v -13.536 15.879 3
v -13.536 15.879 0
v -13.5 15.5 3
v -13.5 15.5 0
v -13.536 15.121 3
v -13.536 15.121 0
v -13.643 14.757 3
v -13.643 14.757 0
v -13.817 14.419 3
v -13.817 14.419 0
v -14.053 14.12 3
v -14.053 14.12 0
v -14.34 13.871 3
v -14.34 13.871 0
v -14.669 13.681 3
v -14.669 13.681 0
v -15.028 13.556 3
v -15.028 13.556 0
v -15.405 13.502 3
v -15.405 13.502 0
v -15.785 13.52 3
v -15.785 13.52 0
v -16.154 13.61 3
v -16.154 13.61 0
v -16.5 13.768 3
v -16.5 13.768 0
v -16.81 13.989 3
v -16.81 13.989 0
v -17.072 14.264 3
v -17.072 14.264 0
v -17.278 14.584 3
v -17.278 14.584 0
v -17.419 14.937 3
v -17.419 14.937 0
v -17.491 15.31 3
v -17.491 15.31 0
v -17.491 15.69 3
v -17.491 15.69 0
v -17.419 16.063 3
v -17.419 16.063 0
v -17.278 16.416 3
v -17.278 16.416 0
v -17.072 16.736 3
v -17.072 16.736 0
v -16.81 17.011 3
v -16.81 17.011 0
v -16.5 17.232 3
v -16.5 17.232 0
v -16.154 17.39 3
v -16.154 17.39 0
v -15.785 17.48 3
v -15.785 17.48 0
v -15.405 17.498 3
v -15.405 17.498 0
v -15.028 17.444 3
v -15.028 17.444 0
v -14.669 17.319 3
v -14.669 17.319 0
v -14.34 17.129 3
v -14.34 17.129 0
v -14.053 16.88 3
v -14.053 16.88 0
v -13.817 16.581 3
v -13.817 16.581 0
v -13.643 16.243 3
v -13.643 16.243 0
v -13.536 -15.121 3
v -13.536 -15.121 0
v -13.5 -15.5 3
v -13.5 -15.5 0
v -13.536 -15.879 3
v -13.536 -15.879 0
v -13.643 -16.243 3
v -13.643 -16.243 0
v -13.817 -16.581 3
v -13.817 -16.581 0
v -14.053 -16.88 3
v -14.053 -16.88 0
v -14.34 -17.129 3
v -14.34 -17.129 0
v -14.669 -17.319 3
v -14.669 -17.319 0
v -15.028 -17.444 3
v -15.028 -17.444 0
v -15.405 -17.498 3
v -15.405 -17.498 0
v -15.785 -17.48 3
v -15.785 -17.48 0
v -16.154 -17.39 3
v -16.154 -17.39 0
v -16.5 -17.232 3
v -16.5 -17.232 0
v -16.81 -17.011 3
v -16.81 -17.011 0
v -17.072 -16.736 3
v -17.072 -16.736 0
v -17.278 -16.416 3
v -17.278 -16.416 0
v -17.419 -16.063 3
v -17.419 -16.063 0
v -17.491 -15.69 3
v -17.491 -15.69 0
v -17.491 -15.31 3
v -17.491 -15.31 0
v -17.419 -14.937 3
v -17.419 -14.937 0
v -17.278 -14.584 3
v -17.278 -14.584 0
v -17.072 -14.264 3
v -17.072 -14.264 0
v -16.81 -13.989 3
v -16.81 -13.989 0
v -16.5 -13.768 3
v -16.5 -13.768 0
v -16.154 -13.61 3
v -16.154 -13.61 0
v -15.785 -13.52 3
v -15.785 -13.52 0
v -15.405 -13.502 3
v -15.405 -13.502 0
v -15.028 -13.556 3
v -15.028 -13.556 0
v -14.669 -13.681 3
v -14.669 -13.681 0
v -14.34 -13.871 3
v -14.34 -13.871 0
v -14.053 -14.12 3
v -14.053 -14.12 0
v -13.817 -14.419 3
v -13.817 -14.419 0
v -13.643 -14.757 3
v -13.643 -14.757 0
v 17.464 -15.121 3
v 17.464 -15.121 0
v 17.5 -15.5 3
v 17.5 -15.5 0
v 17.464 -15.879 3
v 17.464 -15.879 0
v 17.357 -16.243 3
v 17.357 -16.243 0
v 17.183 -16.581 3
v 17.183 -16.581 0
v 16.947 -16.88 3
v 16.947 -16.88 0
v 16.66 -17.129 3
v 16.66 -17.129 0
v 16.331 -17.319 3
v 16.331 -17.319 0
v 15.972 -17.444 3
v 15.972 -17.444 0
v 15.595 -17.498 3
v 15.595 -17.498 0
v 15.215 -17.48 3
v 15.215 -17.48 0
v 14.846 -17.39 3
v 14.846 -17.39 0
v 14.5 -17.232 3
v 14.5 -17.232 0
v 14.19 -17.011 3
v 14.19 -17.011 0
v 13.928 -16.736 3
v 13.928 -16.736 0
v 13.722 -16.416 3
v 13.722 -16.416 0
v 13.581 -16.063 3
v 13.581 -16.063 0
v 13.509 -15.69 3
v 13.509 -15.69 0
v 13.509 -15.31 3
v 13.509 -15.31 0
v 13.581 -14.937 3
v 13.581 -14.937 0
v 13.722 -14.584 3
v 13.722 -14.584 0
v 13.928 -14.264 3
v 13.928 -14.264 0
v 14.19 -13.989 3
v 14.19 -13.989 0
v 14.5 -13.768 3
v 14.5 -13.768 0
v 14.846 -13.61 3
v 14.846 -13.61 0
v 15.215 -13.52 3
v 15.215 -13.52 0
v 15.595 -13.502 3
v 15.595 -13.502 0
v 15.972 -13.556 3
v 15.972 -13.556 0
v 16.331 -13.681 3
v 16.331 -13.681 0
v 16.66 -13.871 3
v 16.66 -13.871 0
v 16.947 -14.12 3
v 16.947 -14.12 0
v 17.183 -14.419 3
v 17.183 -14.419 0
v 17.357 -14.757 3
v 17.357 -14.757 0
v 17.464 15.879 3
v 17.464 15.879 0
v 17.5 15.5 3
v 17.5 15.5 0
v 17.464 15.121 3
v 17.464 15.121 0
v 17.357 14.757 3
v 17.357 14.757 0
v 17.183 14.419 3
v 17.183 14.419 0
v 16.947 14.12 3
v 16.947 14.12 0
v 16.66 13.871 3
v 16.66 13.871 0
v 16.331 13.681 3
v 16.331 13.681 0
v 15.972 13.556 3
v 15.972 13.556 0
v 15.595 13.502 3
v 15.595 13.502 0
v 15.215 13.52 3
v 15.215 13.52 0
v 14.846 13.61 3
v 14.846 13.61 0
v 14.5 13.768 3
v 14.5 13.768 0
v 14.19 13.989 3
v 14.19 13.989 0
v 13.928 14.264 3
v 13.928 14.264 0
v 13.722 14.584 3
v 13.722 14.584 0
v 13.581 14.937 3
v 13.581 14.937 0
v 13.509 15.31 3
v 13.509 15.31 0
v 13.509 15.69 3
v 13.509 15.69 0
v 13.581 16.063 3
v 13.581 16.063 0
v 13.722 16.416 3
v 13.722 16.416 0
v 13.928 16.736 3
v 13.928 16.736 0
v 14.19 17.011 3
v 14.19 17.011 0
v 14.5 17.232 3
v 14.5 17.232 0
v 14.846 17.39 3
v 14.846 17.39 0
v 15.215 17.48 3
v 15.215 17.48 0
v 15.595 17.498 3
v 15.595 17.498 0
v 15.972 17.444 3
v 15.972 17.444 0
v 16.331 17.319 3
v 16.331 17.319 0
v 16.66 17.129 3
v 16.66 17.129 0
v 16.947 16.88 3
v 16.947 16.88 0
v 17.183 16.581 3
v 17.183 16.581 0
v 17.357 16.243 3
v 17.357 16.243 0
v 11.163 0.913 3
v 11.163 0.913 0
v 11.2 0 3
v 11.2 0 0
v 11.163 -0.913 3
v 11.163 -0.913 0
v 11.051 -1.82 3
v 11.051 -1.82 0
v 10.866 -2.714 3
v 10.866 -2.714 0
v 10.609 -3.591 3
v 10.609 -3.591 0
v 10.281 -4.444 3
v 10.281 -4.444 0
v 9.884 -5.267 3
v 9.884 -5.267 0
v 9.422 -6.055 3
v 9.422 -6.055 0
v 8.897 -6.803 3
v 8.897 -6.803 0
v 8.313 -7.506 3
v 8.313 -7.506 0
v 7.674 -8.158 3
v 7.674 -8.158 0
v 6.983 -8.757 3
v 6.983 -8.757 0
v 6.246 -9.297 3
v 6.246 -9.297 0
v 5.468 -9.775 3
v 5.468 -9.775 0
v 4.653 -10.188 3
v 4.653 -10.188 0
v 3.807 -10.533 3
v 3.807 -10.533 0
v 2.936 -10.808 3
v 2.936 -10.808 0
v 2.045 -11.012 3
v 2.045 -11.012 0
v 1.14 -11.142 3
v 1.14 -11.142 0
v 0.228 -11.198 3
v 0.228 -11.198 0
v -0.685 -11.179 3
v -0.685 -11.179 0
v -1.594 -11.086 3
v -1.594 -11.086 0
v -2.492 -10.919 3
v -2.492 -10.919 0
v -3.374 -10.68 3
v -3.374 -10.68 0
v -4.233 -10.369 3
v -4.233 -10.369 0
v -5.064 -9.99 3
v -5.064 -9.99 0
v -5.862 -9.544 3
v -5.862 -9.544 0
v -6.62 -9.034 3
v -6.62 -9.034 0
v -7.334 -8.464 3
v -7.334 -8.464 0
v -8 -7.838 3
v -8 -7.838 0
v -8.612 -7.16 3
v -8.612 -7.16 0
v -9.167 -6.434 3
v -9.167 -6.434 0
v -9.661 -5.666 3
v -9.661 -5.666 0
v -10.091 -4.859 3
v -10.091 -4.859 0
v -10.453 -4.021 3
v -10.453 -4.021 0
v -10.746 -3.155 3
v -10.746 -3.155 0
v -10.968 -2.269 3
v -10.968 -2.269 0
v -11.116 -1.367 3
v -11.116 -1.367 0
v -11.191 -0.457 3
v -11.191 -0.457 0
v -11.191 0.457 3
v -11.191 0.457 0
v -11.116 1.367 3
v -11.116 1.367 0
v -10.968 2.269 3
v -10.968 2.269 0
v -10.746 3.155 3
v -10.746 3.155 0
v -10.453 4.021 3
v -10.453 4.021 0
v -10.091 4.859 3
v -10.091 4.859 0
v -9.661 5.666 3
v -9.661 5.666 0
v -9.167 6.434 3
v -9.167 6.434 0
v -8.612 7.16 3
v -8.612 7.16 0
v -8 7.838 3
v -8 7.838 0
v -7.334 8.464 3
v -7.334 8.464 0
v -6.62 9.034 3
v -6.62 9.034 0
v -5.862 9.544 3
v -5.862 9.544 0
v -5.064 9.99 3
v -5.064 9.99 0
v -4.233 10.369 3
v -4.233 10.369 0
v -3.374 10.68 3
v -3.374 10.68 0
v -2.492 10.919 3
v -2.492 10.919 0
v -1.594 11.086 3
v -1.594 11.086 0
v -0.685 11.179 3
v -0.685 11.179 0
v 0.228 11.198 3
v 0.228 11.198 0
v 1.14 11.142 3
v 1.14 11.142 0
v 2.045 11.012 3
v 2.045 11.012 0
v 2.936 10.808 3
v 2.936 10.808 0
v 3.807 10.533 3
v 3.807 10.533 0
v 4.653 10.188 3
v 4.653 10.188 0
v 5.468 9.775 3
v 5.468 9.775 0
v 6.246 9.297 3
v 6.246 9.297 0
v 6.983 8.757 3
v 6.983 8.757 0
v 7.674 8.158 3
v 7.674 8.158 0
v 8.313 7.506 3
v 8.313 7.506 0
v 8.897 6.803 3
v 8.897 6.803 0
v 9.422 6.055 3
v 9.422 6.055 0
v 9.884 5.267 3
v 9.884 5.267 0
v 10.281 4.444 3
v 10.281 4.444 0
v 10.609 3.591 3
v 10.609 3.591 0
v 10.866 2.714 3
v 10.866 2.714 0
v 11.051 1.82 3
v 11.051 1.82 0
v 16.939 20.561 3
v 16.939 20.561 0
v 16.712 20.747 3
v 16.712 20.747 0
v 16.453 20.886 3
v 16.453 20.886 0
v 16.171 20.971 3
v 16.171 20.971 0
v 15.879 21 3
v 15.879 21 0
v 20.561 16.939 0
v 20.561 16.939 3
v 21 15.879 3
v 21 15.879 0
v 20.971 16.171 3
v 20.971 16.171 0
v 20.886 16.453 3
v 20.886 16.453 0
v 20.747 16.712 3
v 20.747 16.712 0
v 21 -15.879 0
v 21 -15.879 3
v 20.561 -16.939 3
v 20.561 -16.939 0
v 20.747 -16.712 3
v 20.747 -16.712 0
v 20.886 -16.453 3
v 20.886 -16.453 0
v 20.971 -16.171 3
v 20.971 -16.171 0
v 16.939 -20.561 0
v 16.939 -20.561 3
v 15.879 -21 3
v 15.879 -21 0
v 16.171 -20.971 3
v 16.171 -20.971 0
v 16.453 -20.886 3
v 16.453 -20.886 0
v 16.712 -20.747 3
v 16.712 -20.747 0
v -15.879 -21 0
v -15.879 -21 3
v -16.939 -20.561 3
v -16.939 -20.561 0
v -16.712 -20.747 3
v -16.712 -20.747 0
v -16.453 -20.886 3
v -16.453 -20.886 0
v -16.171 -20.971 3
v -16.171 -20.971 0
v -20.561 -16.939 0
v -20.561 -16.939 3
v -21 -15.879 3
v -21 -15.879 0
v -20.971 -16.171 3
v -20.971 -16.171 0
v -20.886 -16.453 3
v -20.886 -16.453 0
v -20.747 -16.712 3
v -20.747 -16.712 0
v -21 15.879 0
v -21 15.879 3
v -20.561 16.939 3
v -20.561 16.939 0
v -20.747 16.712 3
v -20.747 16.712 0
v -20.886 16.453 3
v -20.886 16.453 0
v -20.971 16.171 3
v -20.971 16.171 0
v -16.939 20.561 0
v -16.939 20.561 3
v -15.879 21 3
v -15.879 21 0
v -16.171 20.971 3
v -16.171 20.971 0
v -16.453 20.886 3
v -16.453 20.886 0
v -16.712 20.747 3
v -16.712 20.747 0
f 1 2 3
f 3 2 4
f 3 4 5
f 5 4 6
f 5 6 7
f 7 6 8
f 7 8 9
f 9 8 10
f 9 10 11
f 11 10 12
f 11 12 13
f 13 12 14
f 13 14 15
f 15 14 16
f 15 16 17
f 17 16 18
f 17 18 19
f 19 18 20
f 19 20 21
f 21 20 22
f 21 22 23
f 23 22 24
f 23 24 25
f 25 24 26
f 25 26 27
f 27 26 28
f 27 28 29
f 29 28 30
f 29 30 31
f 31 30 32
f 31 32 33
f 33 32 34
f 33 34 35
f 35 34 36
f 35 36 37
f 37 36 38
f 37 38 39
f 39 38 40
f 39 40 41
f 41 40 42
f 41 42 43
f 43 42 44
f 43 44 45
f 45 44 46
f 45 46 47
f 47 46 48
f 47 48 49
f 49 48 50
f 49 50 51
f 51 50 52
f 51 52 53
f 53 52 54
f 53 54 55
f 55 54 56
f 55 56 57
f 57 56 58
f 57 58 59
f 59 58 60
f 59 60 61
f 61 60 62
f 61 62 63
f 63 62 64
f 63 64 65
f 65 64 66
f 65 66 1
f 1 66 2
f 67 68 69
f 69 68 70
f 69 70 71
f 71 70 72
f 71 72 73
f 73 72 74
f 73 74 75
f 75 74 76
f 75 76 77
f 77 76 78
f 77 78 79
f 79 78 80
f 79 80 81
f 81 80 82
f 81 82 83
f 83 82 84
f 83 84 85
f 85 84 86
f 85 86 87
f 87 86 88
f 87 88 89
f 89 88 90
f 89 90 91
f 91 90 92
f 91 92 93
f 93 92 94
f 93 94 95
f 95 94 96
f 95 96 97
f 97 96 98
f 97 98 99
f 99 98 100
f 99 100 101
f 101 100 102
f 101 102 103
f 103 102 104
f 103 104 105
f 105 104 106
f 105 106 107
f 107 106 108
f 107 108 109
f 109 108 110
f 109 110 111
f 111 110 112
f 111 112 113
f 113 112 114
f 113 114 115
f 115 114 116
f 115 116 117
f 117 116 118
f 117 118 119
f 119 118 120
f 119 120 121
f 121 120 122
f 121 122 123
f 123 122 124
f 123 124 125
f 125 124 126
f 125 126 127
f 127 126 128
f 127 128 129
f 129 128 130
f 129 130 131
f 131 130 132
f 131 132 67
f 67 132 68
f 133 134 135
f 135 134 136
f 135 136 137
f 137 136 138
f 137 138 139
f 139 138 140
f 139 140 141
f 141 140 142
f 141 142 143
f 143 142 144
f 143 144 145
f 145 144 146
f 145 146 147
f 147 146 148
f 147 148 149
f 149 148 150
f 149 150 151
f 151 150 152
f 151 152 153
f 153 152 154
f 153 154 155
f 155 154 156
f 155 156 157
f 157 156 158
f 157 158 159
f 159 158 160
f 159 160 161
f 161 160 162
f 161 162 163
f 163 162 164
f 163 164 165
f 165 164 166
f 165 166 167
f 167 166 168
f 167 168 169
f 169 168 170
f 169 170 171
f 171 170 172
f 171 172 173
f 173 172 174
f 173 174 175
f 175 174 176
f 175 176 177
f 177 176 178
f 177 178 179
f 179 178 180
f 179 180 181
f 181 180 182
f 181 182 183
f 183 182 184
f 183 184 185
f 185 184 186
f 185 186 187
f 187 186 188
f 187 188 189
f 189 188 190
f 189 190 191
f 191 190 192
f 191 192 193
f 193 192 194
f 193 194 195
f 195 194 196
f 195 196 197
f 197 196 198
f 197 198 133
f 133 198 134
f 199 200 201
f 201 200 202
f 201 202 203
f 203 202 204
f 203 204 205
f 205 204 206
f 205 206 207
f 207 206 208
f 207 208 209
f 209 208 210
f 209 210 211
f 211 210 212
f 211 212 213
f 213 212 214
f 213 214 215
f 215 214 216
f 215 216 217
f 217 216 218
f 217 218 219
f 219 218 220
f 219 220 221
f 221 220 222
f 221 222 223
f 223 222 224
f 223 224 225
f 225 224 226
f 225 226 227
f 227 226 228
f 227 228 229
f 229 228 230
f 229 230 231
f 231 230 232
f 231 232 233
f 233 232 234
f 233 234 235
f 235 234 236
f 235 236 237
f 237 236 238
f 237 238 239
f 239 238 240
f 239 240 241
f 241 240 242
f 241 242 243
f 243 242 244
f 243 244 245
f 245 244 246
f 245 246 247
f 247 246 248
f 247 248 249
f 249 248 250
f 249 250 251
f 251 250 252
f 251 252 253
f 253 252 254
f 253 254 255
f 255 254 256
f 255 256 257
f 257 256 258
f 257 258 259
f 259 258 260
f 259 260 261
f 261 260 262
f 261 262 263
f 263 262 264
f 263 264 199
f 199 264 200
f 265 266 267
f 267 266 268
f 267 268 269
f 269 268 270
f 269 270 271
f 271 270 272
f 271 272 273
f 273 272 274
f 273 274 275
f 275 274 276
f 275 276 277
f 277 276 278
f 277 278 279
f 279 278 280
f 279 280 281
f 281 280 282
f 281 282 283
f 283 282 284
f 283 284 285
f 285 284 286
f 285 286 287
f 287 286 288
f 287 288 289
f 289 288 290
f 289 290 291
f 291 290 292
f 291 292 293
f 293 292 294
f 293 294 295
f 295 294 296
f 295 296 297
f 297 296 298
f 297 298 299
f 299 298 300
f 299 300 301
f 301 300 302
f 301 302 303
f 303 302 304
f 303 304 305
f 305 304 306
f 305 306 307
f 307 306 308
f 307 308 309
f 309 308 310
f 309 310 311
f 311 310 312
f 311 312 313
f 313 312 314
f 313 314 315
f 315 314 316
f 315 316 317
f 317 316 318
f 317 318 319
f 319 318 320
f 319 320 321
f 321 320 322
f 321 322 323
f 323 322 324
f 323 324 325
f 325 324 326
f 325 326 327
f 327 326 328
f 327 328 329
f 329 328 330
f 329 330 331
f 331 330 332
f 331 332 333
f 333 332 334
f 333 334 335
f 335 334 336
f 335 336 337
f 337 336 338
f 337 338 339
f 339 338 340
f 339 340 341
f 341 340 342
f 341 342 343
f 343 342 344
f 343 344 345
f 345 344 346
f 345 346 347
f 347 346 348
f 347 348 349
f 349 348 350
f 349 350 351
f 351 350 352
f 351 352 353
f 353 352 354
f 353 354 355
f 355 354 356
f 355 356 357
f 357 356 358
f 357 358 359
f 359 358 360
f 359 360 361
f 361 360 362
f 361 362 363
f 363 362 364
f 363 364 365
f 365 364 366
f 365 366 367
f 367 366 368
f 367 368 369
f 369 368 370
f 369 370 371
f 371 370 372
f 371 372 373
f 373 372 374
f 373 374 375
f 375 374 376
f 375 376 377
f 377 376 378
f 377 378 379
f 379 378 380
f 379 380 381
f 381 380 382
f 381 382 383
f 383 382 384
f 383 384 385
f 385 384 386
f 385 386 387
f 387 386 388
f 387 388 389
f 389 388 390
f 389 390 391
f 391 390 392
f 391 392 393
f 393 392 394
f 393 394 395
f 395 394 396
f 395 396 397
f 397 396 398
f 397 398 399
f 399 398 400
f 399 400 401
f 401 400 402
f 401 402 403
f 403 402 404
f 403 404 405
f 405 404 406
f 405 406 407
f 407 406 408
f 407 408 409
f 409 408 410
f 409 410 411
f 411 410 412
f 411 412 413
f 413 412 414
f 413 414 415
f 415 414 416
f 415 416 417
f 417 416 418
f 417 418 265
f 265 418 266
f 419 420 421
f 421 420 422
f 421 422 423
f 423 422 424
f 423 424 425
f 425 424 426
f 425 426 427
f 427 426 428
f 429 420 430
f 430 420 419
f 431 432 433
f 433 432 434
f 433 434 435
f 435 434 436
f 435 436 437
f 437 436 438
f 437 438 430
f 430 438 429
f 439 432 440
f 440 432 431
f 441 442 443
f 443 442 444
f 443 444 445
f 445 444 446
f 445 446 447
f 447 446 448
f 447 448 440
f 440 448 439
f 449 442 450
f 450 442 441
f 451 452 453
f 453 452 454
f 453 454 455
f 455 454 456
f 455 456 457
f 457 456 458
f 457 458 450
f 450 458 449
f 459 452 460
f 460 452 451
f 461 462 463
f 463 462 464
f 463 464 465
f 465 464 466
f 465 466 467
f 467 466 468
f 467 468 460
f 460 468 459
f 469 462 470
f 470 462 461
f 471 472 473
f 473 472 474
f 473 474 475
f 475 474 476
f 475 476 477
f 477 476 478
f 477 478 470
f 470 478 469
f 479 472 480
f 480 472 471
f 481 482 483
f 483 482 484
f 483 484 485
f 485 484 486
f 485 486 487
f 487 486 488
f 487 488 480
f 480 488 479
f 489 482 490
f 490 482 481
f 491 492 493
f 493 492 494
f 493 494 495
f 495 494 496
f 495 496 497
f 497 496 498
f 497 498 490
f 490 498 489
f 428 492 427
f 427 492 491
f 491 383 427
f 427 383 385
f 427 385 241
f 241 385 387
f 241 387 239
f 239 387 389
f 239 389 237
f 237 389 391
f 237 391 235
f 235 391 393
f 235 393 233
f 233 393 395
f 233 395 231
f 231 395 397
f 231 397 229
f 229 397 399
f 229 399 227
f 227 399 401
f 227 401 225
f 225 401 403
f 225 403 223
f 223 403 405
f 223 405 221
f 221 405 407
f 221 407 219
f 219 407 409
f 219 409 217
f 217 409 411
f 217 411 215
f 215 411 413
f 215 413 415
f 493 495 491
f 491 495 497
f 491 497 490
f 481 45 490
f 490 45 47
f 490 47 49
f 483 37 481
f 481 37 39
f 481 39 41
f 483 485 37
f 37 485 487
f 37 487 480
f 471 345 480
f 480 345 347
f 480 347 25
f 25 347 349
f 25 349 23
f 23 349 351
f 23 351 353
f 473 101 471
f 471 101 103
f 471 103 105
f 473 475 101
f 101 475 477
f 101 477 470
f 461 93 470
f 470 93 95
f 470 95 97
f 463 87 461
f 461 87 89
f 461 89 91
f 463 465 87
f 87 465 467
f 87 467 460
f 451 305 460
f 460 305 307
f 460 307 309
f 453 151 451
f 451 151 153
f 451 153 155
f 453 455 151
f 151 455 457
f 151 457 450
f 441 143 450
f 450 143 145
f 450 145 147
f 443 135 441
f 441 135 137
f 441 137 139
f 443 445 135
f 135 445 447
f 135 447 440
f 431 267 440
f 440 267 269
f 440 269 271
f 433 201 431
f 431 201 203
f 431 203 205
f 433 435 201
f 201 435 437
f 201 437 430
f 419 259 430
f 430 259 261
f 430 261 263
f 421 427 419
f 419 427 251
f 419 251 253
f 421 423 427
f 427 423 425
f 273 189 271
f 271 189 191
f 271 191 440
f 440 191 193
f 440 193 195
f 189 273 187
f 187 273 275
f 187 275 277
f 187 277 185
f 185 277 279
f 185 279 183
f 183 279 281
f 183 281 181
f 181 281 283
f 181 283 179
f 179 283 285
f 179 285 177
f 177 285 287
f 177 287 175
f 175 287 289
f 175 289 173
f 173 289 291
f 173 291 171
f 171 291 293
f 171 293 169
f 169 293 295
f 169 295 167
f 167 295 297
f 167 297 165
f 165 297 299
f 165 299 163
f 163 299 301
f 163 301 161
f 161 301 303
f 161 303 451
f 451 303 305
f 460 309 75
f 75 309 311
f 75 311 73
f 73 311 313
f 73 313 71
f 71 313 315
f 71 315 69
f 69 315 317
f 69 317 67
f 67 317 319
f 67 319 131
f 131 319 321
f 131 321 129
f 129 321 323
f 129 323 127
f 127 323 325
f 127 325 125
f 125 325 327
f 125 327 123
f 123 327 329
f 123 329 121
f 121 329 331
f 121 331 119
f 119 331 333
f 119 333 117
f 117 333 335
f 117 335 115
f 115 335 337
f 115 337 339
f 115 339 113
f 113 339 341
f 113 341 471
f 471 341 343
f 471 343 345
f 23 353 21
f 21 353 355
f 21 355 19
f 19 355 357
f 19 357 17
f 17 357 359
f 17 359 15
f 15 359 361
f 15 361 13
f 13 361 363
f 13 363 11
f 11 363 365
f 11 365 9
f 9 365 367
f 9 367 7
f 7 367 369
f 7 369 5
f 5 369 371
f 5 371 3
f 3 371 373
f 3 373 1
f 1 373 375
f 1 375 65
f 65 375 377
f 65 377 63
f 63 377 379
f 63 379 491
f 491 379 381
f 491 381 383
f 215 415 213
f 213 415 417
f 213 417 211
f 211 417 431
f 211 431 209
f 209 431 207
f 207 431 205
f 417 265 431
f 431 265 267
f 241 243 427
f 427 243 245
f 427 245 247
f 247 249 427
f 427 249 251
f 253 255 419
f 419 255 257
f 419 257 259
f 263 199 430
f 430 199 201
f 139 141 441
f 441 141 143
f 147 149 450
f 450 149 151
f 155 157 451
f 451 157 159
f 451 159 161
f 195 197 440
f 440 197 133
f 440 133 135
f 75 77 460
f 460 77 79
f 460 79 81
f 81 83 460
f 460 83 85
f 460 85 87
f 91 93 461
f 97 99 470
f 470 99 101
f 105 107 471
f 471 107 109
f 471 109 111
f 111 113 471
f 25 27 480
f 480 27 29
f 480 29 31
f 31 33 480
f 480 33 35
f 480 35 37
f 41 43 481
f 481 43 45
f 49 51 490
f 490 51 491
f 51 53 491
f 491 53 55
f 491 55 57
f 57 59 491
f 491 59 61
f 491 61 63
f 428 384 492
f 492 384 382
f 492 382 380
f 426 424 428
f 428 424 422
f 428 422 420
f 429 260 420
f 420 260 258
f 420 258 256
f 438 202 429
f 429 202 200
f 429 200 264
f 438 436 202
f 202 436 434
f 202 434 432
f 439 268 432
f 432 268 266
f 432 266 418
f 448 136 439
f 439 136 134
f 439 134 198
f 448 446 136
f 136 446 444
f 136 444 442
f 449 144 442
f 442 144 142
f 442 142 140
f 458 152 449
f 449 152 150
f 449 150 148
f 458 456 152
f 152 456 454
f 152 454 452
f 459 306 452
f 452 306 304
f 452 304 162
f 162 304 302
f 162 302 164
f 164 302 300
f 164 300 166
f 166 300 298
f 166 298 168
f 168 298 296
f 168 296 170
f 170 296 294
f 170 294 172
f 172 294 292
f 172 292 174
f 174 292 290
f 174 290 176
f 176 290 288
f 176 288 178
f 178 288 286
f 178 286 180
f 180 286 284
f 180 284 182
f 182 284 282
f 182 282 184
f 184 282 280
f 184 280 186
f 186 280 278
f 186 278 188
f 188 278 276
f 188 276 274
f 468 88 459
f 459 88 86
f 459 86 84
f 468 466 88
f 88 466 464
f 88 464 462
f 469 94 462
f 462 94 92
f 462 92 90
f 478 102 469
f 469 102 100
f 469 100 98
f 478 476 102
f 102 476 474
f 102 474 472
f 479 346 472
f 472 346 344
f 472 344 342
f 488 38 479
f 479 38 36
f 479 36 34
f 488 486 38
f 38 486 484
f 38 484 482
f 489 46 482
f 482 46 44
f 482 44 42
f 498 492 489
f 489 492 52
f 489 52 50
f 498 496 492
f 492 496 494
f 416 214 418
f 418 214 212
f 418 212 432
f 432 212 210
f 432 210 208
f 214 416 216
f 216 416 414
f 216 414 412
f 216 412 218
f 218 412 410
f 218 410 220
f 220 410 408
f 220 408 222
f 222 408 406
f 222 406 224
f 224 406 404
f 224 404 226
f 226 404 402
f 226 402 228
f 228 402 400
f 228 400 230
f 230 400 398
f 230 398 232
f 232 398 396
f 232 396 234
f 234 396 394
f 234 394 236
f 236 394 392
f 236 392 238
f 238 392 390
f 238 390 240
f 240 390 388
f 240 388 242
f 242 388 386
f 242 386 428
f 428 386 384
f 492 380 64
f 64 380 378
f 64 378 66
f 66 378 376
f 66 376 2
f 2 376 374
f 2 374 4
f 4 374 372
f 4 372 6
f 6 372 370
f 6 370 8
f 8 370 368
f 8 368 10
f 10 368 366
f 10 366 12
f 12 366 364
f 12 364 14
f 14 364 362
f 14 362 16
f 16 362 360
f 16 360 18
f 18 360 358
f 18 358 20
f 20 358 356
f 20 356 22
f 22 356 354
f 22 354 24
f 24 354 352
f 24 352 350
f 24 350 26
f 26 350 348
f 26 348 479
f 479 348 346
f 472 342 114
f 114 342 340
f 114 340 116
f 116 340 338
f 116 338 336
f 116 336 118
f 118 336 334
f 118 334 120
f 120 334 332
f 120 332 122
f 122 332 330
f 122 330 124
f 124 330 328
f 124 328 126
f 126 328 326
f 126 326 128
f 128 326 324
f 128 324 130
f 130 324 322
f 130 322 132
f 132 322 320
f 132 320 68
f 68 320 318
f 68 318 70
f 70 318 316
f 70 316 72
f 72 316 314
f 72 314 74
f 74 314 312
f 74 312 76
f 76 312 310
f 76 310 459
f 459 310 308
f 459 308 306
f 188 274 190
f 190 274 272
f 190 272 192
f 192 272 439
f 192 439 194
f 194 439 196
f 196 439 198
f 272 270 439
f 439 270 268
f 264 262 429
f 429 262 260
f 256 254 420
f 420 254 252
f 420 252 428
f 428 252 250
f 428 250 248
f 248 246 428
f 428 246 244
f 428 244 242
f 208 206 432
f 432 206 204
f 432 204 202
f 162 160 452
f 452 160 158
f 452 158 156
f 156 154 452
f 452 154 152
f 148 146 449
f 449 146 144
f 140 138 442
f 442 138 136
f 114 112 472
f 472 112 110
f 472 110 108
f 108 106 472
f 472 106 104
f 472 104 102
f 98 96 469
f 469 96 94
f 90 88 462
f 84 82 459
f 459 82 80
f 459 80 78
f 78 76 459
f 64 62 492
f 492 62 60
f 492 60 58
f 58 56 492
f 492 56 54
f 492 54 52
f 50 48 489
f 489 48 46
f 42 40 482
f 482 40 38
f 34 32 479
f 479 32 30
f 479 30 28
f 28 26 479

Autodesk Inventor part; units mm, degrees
ref_plane "YZ Plane" through (0, 0, 0) normal (1, 0, 0) x (0, 1, 0)
ref_plane "XZ Plane" through (0, 0, 0) normal (0, 1, 0) x (-1, 0, 0)
ref_plane "Work Plane1" through (0, 0, 0) normal (0, 0, 1) x (1, 0, 0)
sketch "Sketch1" plane through (0, 0, 0) normal (0, 0, 1) x (1, 0, 0)
  arc A0 (16.9393, 20.5607) -> (15.8787, 21) centre (15.8787, 19.5) ccw projected
  line L0 (15.8787, 21) -> (-15.8787, 21) projected
  arc A1 (-15.8787, 21) -> (-16.9393, 20.5607) centre (-15.8787, 19.5) ccw projected
  line L1 (-16.9393, 20.5607) -> (-20.5607, 16.9393) projected
  arc A2 (-20.5607, 16.9393) -> (-21, 15.8787) centre (-19.5, 15.8787) ccw projected
  line L2 (-21, 15.8787) -> (-21, -15.8787) projected
  arc A3 (-21, -15.8787) -> (-20.5607, -16.9393) centre (-19.5, -15.8787) ccw projected
  line L3 (-20.5607, -16.9393) -> (-16.9393, -20.5607) projected
  arc A4 (-16.9393, -20.5607) -> (-15.8787, -21) centre (-15.8787, -19.5) ccw projected
  line L4 (-15.8787, -21) -> (15.8787, -21) projected
  arc A5 (15.8787, -21) -> (16.9393, -20.5607) centre (15.8787, -19.5) ccw projected
  line L5 (16.9393, -20.5607) -> (20.5607, -16.9393) projected
  arc A6 (20.5607, -16.9393) -> (21, -15.8787) centre (19.5, -15.8787) ccw projected
  line L6 (21, -15.8787) -> (21, 15.8787) projected
  arc A7 (21, 15.8787) -> (20.5607, 16.9393) centre (19.5, 15.8787) ccw projected
  line L7 (20.5607, 16.9393) -> (16.9393, 20.5607) projected
  circle A8 centre (-15.5, -15.5) radius 1.5 projected
  circle A9 centre (-15.5, 15.5) radius 1.5 projected
  circle A10 centre (15.5, -15.5) radius 1.5 projected
  circle A11 centre (15.5, 15.5) radius 1.5 projected
  circle A12 centre (0, 0) radius 11.2 projected
  circle A13 centre (-15.5, 15.5) radius 2
  circle A14 centre (-15.5, -15.5) radius 2
  circle A15 centre (15.5, -15.5) radius 2
  circle A16 centre (15.5, 15.5) radius 2
  point P0 (0, 0)
  dimension "d0" = 4
  dimension "d1" = 4
  dimension "d2" = 4
  dimension "d3" = 4
extrude "Extrusion1" add sketch "Sketch1" along normal blind 3 contours L7 A7 L6 A6 L5 A5 L4 A4 L3 A3 L2 A2 L1 A1 L0 A0
properties part number "Part2_3DPrint"
